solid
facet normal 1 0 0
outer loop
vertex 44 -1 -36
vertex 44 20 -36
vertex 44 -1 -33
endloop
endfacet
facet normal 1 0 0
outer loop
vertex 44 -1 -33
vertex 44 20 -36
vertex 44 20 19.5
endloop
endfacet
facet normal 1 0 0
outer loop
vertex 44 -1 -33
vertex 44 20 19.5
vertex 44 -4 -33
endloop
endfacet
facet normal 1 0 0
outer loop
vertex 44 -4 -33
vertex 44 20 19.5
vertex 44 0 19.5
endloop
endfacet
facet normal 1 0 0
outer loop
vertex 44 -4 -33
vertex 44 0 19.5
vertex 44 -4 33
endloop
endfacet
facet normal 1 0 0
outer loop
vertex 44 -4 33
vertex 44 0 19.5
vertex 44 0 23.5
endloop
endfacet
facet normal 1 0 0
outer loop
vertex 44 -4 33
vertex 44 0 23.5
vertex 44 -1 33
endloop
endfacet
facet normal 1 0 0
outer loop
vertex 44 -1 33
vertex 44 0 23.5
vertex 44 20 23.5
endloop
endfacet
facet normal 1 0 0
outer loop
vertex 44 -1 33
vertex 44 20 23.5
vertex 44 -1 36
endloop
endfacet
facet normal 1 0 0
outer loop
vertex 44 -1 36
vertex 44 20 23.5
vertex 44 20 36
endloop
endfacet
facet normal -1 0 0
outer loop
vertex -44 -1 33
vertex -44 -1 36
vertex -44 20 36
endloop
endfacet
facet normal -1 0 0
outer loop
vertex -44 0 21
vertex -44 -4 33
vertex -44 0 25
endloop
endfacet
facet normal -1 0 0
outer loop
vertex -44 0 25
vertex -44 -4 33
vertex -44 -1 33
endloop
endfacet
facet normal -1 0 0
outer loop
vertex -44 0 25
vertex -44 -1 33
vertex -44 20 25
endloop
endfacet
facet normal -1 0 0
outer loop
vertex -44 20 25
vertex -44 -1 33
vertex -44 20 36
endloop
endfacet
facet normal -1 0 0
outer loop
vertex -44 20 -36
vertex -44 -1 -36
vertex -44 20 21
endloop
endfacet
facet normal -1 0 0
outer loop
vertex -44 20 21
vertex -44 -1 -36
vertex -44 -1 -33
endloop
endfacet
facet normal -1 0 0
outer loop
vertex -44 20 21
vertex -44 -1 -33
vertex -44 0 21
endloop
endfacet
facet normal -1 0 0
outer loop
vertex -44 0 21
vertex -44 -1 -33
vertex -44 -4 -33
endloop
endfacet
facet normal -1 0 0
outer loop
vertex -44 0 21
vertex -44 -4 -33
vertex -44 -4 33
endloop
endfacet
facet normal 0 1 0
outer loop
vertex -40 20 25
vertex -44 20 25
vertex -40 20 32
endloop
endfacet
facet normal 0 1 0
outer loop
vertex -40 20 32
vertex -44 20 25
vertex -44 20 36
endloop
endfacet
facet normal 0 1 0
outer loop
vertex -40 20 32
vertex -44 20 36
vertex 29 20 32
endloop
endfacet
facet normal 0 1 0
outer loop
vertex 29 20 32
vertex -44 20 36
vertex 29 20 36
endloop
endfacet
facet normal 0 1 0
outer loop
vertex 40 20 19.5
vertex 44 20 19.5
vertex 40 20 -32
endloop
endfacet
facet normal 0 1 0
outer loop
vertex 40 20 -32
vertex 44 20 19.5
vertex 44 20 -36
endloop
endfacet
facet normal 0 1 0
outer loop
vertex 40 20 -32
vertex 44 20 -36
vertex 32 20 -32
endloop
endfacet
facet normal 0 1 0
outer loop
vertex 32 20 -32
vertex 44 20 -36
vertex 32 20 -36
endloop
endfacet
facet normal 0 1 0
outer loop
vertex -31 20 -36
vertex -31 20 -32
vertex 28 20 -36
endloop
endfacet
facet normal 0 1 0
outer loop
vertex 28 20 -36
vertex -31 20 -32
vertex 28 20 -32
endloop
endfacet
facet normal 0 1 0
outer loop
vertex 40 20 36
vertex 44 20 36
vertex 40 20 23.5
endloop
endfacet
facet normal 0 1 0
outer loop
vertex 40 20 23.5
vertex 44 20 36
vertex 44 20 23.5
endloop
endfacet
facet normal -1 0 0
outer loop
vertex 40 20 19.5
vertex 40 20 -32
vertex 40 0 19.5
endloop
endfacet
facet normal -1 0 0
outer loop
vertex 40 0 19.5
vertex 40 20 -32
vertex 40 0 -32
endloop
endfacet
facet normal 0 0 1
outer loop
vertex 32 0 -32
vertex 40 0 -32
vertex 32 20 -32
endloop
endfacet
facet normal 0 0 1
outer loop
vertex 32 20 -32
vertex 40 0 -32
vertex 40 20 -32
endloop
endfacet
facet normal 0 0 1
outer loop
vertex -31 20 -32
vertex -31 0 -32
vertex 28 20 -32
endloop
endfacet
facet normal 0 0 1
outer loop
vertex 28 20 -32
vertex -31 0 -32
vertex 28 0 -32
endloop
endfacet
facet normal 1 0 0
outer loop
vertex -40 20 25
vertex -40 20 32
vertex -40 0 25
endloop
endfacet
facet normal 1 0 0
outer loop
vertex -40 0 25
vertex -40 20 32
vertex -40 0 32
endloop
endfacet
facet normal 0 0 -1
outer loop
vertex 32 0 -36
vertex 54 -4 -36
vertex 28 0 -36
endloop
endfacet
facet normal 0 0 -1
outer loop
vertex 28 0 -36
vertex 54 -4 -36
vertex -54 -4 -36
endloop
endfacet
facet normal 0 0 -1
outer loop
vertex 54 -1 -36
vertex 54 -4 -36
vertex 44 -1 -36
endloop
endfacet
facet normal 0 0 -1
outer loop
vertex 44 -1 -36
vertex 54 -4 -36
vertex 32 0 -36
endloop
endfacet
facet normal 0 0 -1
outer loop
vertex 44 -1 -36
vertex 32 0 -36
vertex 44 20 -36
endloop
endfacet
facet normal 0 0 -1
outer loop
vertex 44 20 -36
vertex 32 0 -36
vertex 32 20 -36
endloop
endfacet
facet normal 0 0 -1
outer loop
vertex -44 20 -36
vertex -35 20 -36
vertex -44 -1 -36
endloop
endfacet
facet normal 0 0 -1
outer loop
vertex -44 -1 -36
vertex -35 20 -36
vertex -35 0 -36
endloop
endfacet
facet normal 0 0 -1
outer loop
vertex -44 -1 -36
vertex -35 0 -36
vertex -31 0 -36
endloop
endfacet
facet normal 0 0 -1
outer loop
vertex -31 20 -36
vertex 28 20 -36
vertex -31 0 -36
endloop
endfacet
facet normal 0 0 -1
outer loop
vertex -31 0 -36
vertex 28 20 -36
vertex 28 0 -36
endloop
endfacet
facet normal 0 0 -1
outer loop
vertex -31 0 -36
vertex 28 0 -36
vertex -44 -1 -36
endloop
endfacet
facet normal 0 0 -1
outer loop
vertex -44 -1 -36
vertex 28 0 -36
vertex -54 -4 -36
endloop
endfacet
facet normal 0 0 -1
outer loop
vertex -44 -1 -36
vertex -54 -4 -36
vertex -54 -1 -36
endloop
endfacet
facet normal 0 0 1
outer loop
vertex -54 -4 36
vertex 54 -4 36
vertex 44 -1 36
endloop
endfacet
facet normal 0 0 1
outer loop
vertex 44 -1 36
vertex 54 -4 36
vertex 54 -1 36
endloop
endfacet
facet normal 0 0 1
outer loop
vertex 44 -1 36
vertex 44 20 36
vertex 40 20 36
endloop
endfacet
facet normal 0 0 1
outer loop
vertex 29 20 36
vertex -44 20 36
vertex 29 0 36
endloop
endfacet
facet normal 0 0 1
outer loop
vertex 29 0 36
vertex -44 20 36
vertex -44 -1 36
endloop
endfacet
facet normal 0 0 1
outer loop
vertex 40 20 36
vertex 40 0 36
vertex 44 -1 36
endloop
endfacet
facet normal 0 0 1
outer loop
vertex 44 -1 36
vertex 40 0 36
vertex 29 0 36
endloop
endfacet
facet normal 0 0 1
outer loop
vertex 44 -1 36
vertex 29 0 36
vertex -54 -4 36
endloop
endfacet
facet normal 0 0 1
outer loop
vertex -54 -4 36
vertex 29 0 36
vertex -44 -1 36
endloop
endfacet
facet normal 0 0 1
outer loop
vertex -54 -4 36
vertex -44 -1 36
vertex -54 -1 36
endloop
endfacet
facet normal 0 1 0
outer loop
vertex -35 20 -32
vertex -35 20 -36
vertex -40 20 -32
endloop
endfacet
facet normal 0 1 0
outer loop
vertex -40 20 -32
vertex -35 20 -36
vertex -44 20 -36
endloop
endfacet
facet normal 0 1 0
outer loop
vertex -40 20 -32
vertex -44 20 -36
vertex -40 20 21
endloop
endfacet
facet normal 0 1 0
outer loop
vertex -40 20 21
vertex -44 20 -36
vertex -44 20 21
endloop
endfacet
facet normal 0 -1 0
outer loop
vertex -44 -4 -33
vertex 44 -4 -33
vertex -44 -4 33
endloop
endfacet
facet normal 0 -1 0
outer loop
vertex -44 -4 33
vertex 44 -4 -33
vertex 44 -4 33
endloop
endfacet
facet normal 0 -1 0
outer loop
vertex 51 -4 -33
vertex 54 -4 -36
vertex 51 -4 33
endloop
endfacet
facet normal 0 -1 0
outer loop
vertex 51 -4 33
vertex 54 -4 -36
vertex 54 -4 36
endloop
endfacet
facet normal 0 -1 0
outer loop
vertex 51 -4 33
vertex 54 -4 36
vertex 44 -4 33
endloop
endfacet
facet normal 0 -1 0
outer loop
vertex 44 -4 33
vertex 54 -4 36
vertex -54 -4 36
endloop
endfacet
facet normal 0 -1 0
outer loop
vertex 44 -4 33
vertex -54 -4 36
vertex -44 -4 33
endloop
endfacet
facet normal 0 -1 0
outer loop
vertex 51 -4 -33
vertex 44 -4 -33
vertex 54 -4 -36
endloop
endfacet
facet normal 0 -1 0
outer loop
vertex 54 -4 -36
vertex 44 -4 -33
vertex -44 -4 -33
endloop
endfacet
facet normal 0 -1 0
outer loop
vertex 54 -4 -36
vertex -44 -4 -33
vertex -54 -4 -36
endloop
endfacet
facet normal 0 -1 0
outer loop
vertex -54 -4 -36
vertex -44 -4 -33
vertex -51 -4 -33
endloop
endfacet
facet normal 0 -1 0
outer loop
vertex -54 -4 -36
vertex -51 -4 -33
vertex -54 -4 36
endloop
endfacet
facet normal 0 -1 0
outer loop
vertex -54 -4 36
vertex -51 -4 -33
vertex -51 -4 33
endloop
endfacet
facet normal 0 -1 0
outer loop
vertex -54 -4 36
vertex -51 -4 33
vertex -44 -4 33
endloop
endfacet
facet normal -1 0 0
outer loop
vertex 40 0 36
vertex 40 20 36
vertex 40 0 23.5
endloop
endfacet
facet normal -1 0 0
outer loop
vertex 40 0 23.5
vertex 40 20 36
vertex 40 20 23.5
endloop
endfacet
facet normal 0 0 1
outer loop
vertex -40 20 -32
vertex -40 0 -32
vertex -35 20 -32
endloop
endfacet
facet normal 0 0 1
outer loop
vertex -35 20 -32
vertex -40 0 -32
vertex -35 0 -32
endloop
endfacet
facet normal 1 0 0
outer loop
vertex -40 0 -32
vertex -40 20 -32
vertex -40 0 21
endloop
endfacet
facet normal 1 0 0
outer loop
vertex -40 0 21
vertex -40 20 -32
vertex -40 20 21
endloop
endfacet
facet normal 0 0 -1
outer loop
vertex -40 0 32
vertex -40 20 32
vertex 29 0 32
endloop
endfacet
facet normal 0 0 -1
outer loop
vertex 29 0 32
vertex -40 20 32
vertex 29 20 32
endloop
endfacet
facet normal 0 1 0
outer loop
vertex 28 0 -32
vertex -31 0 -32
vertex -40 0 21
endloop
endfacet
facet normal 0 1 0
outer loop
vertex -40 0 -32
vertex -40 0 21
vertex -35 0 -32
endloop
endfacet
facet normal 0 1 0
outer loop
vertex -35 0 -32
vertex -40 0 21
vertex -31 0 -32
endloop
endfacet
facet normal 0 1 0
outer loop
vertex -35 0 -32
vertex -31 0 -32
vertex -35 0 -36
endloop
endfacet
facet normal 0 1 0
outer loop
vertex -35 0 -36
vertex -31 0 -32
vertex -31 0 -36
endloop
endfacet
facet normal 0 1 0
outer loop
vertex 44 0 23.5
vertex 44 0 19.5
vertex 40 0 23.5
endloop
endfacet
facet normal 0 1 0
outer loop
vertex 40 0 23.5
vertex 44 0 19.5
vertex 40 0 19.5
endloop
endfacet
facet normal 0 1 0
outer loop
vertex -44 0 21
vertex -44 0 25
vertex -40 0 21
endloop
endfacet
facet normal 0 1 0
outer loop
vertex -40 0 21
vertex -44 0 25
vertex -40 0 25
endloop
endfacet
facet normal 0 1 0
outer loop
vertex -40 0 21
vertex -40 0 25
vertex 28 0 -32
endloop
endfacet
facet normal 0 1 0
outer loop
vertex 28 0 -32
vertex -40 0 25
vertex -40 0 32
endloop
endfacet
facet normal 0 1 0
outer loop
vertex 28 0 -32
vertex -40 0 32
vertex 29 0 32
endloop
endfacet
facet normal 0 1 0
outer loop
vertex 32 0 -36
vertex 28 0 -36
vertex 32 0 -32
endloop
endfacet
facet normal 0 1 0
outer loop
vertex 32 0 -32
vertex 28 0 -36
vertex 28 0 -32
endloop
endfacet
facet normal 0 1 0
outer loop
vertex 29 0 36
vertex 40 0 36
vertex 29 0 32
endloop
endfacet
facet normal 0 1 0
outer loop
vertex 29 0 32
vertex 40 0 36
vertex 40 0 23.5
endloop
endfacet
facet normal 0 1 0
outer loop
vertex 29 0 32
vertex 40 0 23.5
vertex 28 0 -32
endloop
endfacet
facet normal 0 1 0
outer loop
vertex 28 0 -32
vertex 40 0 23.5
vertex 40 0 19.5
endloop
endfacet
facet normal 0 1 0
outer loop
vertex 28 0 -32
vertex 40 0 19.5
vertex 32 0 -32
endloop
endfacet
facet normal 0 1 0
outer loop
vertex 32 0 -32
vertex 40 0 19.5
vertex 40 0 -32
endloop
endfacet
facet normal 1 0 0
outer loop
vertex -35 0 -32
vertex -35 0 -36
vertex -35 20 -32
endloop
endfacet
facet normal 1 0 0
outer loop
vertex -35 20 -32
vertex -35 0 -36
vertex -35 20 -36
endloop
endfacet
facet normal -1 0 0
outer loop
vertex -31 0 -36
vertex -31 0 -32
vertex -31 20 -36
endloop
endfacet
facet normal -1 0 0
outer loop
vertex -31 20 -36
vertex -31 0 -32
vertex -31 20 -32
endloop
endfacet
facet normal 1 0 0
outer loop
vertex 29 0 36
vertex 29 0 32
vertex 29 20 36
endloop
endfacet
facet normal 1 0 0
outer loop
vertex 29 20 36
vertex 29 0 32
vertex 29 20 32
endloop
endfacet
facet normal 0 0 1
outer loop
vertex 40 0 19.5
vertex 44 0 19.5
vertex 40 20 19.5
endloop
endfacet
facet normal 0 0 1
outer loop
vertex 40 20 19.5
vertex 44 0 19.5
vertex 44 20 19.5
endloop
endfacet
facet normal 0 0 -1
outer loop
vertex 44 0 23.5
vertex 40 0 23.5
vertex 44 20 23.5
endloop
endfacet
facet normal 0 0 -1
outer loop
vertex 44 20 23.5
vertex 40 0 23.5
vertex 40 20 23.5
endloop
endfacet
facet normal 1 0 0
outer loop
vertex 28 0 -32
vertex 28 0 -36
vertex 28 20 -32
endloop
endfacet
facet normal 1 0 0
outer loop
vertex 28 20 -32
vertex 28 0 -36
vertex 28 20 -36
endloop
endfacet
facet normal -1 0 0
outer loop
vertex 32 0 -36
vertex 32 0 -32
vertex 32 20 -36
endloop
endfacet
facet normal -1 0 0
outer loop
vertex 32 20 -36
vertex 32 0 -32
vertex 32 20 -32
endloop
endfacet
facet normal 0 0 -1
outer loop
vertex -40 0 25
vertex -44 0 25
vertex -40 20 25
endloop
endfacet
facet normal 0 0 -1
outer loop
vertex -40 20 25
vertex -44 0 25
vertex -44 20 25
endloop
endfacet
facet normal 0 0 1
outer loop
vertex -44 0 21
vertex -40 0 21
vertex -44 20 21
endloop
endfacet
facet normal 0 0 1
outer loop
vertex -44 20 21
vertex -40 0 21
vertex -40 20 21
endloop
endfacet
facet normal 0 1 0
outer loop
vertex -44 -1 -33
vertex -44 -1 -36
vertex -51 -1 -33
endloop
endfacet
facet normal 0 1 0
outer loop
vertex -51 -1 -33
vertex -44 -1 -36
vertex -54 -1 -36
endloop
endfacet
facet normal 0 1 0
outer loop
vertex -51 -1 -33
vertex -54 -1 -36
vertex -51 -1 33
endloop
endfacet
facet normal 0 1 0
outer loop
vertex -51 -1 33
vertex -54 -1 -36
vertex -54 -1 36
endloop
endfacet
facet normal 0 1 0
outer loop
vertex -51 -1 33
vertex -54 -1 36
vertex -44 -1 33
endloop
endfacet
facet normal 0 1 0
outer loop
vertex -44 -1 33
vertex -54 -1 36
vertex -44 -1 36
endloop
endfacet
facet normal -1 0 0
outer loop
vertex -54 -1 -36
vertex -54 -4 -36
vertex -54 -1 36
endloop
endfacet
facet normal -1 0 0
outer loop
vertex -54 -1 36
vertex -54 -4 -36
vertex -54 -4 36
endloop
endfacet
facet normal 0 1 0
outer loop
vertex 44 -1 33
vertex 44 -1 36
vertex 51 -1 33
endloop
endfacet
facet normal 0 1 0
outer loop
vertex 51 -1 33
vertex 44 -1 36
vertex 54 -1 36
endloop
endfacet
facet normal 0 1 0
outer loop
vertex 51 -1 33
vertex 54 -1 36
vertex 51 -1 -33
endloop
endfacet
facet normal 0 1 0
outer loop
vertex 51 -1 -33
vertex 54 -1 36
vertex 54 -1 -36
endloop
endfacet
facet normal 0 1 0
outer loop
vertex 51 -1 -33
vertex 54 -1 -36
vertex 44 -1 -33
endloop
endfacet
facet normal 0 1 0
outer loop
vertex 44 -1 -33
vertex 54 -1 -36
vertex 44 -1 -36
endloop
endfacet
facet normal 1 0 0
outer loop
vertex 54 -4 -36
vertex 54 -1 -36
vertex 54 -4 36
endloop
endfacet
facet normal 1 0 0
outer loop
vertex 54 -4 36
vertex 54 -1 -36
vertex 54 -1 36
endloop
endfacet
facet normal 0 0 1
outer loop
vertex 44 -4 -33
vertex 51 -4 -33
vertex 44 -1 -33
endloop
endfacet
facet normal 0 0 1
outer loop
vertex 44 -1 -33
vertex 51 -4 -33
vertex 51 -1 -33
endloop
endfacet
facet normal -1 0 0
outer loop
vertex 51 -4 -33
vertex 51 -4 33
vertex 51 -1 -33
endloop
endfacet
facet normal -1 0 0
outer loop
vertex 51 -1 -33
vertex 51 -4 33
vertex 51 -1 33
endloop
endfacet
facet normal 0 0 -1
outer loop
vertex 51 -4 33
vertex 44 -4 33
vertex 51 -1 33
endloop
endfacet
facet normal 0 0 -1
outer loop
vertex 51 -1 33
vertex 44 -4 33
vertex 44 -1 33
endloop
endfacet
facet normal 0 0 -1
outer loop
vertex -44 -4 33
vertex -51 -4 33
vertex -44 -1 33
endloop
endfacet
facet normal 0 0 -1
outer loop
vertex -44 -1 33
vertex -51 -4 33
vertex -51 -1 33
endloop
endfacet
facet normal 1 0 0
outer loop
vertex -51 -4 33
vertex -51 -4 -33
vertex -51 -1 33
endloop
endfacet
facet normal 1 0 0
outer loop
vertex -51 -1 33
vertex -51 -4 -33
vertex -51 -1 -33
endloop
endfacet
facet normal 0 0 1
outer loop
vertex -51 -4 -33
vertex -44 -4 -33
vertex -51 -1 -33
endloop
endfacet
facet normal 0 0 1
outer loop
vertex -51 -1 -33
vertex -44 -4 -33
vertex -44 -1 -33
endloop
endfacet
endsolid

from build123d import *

# Parameters (mm, degrees)
SKETCH1_W           = 80
SKETCH1_H           = 64
BOSS_EXTRUDE1_DEPTH = 20
SHELL1_T            = 4
SKETCH2_W           = 4
SKETCH2_H           = 4
SKETCH2_W_2         = 11
CUT_EXTRUDE1_DEPTH  = 20
SKETCH4_W           = 72
SKETCH4_H           = 3
BOSS_EXTRUDE3_DEPTH = 10
SKETCH3_W           = 72
SKETCH3_H           = 3
BOSS_EXTRUDE2_DEPTH = 10
SKETCH6_W           = 7
SKETCH6_H           = 66
CUT_EXTRUDE2_DEPTH  = 3


with BuildPart() as part:
    # Sketch1 → Boss-Extrude1 (new body)
    with BuildSketch(Plane(origin=(0, 0, 0), x_dir=(1, 0, 0), z_dir=(0, 1, 0))):
        Rectangle(SKETCH1_W, SKETCH1_H)
    extrude(amount=BOSS_EXTRUDE1_DEPTH)

    # Shell1
    shell1_openings = [part.faces().sort_by_distance(p)[0] for p in [
        (0, 20, 0),
    ]]
    offset(amount=SHELL1_T, openings=shell1_openings, kind=Kind.INTERSECTION)

    # Sketch2 → Cut-Extrude1 (cut)
    with BuildSketch(Plane(origin=(0, 20, 0), x_dir=(1, 0, 0), z_dir=(0, 1, 0))):
        with Locations((-42, -23)):
            Rectangle(SKETCH2_W, SKETCH2_H)
        with Locations((34.5, -34)):
            Rectangle(SKETCH2_W_2, SKETCH2_H)
        with Locations((42, -21.5)):
            Rectangle(SKETCH2_W, SKETCH2_H)
        with Locations((30, 34)):
            Rectangle(SKETCH2_W, SKETCH2_H)
        with Locations((-33, 34)):
            Rectangle(SKETCH2_W, SKETCH2_H)
    extrude(amount=-CUT_EXTRUDE1_DEPTH, mode=Mode.SUBTRACT)

    # Sketch4 → Boss-Extrude3 (add)
    with BuildSketch(Plane.ZY.offset(44)):
        with Locations((0, -2.5)):
            Rectangle(SKETCH4_W, SKETCH4_H)
    extrude(amount=BOSS_EXTRUDE3_DEPTH)

    # Sketch3 → Boss-Extrude2 (add)
    with BuildSketch(Plane(origin=(44, 0, 0), x_dir=(0, 0, -1), z_dir=(1, 0, 0))):
        with Locations((0, -2.5)):
            Rectangle(SKETCH3_W, SKETCH3_H)
    extrude(amount=BOSS_EXTRUDE2_DEPTH)

    # Sketch6 → Cut-Extrude2 (cut)
    with BuildSketch(Plane(origin=(0, -1, 0), x_dir=(1, 0, 0), z_dir=(0, 1, 0))):
        with Locations((-47.5, 0)):
            Rectangle(SKETCH6_W, SKETCH6_H)
        with Locations((47.5, 0)):
            Rectangle(SKETCH6_W, SKETCH6_H)
    extrude(amount=-CUT_EXTRUDE2_DEPTH, mode=Mode.SUBTRACT)


solid = part.part
